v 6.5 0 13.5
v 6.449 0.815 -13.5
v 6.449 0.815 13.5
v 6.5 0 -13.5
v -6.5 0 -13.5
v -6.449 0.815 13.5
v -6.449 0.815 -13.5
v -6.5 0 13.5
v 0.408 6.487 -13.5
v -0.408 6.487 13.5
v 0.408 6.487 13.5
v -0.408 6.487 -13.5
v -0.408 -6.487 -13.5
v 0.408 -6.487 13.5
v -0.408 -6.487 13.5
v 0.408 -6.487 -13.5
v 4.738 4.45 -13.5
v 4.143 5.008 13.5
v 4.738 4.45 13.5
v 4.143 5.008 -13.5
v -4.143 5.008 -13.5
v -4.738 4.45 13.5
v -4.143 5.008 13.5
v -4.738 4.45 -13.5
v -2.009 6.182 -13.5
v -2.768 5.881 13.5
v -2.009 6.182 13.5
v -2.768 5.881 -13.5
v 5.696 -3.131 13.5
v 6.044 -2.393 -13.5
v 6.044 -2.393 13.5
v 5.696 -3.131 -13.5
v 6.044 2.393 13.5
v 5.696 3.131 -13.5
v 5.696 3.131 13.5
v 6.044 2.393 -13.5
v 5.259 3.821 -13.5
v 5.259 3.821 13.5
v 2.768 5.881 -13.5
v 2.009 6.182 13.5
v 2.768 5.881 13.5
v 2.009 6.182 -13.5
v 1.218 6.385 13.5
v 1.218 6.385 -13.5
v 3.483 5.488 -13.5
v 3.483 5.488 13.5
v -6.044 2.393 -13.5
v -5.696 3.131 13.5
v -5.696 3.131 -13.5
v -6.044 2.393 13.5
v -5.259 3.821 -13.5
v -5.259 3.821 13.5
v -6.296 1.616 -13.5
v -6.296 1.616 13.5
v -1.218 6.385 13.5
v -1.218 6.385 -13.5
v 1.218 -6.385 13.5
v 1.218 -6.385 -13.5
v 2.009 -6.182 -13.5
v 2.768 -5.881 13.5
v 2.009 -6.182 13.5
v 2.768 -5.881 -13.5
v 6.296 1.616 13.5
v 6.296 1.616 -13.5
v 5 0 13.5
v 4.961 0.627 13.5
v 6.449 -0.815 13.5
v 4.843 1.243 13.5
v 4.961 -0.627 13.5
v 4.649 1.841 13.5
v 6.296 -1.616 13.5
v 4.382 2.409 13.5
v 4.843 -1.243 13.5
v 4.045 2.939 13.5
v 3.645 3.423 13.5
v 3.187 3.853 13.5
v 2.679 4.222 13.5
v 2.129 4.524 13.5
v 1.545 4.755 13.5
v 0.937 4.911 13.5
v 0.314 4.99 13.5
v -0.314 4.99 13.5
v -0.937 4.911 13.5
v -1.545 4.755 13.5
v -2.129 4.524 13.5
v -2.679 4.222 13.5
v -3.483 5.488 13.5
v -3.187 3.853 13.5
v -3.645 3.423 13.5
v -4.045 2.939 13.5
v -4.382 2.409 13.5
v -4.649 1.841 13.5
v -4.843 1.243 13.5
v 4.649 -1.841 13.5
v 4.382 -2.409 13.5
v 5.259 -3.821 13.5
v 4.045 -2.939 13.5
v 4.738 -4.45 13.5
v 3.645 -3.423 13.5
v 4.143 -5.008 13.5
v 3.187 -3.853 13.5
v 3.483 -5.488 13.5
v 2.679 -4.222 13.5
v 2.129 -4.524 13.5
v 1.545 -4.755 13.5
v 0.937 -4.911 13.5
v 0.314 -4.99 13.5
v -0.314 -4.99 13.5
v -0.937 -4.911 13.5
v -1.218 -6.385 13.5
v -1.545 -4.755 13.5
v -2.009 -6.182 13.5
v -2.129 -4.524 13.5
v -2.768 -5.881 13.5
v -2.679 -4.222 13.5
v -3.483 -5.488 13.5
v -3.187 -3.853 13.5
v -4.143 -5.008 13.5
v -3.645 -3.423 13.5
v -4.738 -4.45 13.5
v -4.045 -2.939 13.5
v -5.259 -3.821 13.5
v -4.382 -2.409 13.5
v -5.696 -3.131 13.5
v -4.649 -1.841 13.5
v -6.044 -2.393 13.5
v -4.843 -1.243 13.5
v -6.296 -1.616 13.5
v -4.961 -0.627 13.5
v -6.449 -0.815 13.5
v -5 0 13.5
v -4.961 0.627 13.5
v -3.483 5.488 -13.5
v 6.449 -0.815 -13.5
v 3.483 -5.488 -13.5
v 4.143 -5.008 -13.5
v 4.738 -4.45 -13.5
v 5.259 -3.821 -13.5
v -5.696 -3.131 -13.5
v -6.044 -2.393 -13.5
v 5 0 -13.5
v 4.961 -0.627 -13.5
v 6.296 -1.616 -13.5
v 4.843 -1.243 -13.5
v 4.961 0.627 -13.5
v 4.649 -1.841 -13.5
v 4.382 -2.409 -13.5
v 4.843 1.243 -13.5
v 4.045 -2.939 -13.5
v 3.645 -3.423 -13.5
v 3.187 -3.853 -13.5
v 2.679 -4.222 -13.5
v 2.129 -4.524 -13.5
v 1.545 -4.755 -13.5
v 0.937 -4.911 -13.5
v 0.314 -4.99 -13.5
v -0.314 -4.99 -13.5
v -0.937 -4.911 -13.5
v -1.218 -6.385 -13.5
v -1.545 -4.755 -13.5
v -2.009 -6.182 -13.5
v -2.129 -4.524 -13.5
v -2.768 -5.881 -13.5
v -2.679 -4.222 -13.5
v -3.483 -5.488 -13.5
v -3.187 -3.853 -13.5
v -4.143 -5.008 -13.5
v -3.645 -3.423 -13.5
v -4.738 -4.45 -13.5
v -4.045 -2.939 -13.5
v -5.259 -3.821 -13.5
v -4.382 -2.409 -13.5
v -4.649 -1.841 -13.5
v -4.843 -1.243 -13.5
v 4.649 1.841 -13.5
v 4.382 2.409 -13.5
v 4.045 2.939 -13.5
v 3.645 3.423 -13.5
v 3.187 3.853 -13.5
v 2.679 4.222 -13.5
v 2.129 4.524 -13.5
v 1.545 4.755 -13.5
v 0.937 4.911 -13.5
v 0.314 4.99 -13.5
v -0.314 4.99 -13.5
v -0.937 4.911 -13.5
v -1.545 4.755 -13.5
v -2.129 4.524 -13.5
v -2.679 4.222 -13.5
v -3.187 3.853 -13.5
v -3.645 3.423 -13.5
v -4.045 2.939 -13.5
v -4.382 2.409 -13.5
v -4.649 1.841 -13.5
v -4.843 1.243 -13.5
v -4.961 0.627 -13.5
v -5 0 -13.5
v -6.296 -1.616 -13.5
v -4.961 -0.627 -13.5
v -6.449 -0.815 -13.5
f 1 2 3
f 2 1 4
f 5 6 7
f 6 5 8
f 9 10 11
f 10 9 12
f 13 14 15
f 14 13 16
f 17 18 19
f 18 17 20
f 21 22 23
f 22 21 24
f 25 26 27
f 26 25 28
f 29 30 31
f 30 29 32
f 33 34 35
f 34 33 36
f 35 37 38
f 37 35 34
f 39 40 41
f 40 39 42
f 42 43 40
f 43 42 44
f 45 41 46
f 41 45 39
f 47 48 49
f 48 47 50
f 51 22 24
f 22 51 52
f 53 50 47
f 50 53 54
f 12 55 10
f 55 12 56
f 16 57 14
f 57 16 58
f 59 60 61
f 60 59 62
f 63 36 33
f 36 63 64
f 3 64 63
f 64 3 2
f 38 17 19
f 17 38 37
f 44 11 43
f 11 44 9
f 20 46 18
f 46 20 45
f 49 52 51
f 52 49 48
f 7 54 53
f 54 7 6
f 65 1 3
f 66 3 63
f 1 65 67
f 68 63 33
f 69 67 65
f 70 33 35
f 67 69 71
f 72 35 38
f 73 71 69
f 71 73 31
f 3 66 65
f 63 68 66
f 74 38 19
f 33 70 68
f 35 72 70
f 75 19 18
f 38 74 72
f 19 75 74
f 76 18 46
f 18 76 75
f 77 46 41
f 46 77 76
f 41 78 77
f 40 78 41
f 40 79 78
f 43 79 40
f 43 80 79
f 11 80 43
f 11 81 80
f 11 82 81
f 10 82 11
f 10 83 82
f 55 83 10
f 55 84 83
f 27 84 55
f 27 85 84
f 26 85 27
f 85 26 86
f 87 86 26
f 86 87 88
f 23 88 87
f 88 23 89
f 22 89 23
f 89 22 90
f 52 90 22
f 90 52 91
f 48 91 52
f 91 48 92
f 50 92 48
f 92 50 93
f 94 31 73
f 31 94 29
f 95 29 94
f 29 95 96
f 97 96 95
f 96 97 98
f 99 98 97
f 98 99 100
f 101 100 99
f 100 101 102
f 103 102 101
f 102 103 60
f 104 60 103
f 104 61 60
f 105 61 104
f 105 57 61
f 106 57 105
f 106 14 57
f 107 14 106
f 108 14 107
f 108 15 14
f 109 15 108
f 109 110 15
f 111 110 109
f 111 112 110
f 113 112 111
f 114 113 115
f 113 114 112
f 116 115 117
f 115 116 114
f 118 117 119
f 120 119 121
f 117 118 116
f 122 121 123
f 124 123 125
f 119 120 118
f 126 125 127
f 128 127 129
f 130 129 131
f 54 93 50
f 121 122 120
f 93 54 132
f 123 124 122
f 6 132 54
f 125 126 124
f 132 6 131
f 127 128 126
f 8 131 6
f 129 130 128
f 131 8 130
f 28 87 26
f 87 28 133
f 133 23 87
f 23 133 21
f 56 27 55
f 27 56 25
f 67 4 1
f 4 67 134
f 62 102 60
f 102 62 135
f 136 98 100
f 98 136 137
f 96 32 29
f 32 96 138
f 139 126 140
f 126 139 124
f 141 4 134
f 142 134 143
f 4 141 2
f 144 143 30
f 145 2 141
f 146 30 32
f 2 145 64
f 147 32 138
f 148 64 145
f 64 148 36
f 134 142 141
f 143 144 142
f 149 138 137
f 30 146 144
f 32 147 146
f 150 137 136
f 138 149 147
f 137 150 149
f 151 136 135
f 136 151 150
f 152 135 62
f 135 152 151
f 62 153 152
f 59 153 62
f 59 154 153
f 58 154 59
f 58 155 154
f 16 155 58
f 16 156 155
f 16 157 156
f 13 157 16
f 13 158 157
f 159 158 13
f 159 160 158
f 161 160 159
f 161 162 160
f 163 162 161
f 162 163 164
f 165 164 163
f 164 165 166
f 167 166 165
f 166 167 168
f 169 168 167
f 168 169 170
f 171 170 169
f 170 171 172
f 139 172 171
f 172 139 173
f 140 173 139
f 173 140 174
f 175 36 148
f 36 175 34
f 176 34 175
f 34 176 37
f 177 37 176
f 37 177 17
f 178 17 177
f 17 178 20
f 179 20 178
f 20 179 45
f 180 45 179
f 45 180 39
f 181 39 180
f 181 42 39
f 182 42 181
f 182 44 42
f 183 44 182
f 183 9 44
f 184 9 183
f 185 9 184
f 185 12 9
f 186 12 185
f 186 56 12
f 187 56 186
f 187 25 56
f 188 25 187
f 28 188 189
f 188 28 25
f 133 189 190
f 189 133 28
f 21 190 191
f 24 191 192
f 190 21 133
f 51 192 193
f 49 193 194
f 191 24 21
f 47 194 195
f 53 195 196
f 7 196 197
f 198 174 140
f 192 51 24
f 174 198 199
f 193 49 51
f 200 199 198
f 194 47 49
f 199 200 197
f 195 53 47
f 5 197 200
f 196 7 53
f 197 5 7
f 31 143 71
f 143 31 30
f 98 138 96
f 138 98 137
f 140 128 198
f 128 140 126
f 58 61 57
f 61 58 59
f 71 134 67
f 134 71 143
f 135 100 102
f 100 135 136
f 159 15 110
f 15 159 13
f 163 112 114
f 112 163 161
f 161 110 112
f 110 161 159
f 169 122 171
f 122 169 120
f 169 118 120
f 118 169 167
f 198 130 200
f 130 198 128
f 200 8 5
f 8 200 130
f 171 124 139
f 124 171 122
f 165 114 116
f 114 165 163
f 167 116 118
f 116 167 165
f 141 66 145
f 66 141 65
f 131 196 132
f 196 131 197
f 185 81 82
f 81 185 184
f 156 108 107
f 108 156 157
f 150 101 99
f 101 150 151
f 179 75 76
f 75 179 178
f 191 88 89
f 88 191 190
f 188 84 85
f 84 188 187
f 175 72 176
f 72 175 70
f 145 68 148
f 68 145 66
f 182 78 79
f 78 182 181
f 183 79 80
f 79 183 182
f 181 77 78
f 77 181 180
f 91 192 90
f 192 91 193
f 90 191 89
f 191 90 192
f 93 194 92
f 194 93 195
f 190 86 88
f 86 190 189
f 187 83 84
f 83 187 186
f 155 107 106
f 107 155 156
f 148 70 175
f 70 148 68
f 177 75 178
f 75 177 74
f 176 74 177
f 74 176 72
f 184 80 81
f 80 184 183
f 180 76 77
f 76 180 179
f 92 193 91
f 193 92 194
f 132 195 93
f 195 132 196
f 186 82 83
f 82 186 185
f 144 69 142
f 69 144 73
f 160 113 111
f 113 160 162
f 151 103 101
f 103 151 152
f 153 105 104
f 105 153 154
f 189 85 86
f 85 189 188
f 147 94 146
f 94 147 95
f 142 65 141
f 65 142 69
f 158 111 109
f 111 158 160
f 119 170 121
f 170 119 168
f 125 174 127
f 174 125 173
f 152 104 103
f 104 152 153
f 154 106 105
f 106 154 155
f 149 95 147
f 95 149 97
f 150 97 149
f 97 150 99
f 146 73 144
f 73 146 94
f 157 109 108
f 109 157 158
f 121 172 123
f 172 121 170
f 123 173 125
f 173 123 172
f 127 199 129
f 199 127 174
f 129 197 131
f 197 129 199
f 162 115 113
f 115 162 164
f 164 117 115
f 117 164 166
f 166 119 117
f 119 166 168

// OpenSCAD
$fn = 50;


difference() {
	union() {
		translate(v = [0, 0, -13.5000000000]) {
			cylinder(h = 27, r = 6.5000000000);
		}
	}
	union() {
		translate(v = [0, 0, -100.0000000000]) {
			cylinder(h = 200, r = 5);
		}
	}
}
